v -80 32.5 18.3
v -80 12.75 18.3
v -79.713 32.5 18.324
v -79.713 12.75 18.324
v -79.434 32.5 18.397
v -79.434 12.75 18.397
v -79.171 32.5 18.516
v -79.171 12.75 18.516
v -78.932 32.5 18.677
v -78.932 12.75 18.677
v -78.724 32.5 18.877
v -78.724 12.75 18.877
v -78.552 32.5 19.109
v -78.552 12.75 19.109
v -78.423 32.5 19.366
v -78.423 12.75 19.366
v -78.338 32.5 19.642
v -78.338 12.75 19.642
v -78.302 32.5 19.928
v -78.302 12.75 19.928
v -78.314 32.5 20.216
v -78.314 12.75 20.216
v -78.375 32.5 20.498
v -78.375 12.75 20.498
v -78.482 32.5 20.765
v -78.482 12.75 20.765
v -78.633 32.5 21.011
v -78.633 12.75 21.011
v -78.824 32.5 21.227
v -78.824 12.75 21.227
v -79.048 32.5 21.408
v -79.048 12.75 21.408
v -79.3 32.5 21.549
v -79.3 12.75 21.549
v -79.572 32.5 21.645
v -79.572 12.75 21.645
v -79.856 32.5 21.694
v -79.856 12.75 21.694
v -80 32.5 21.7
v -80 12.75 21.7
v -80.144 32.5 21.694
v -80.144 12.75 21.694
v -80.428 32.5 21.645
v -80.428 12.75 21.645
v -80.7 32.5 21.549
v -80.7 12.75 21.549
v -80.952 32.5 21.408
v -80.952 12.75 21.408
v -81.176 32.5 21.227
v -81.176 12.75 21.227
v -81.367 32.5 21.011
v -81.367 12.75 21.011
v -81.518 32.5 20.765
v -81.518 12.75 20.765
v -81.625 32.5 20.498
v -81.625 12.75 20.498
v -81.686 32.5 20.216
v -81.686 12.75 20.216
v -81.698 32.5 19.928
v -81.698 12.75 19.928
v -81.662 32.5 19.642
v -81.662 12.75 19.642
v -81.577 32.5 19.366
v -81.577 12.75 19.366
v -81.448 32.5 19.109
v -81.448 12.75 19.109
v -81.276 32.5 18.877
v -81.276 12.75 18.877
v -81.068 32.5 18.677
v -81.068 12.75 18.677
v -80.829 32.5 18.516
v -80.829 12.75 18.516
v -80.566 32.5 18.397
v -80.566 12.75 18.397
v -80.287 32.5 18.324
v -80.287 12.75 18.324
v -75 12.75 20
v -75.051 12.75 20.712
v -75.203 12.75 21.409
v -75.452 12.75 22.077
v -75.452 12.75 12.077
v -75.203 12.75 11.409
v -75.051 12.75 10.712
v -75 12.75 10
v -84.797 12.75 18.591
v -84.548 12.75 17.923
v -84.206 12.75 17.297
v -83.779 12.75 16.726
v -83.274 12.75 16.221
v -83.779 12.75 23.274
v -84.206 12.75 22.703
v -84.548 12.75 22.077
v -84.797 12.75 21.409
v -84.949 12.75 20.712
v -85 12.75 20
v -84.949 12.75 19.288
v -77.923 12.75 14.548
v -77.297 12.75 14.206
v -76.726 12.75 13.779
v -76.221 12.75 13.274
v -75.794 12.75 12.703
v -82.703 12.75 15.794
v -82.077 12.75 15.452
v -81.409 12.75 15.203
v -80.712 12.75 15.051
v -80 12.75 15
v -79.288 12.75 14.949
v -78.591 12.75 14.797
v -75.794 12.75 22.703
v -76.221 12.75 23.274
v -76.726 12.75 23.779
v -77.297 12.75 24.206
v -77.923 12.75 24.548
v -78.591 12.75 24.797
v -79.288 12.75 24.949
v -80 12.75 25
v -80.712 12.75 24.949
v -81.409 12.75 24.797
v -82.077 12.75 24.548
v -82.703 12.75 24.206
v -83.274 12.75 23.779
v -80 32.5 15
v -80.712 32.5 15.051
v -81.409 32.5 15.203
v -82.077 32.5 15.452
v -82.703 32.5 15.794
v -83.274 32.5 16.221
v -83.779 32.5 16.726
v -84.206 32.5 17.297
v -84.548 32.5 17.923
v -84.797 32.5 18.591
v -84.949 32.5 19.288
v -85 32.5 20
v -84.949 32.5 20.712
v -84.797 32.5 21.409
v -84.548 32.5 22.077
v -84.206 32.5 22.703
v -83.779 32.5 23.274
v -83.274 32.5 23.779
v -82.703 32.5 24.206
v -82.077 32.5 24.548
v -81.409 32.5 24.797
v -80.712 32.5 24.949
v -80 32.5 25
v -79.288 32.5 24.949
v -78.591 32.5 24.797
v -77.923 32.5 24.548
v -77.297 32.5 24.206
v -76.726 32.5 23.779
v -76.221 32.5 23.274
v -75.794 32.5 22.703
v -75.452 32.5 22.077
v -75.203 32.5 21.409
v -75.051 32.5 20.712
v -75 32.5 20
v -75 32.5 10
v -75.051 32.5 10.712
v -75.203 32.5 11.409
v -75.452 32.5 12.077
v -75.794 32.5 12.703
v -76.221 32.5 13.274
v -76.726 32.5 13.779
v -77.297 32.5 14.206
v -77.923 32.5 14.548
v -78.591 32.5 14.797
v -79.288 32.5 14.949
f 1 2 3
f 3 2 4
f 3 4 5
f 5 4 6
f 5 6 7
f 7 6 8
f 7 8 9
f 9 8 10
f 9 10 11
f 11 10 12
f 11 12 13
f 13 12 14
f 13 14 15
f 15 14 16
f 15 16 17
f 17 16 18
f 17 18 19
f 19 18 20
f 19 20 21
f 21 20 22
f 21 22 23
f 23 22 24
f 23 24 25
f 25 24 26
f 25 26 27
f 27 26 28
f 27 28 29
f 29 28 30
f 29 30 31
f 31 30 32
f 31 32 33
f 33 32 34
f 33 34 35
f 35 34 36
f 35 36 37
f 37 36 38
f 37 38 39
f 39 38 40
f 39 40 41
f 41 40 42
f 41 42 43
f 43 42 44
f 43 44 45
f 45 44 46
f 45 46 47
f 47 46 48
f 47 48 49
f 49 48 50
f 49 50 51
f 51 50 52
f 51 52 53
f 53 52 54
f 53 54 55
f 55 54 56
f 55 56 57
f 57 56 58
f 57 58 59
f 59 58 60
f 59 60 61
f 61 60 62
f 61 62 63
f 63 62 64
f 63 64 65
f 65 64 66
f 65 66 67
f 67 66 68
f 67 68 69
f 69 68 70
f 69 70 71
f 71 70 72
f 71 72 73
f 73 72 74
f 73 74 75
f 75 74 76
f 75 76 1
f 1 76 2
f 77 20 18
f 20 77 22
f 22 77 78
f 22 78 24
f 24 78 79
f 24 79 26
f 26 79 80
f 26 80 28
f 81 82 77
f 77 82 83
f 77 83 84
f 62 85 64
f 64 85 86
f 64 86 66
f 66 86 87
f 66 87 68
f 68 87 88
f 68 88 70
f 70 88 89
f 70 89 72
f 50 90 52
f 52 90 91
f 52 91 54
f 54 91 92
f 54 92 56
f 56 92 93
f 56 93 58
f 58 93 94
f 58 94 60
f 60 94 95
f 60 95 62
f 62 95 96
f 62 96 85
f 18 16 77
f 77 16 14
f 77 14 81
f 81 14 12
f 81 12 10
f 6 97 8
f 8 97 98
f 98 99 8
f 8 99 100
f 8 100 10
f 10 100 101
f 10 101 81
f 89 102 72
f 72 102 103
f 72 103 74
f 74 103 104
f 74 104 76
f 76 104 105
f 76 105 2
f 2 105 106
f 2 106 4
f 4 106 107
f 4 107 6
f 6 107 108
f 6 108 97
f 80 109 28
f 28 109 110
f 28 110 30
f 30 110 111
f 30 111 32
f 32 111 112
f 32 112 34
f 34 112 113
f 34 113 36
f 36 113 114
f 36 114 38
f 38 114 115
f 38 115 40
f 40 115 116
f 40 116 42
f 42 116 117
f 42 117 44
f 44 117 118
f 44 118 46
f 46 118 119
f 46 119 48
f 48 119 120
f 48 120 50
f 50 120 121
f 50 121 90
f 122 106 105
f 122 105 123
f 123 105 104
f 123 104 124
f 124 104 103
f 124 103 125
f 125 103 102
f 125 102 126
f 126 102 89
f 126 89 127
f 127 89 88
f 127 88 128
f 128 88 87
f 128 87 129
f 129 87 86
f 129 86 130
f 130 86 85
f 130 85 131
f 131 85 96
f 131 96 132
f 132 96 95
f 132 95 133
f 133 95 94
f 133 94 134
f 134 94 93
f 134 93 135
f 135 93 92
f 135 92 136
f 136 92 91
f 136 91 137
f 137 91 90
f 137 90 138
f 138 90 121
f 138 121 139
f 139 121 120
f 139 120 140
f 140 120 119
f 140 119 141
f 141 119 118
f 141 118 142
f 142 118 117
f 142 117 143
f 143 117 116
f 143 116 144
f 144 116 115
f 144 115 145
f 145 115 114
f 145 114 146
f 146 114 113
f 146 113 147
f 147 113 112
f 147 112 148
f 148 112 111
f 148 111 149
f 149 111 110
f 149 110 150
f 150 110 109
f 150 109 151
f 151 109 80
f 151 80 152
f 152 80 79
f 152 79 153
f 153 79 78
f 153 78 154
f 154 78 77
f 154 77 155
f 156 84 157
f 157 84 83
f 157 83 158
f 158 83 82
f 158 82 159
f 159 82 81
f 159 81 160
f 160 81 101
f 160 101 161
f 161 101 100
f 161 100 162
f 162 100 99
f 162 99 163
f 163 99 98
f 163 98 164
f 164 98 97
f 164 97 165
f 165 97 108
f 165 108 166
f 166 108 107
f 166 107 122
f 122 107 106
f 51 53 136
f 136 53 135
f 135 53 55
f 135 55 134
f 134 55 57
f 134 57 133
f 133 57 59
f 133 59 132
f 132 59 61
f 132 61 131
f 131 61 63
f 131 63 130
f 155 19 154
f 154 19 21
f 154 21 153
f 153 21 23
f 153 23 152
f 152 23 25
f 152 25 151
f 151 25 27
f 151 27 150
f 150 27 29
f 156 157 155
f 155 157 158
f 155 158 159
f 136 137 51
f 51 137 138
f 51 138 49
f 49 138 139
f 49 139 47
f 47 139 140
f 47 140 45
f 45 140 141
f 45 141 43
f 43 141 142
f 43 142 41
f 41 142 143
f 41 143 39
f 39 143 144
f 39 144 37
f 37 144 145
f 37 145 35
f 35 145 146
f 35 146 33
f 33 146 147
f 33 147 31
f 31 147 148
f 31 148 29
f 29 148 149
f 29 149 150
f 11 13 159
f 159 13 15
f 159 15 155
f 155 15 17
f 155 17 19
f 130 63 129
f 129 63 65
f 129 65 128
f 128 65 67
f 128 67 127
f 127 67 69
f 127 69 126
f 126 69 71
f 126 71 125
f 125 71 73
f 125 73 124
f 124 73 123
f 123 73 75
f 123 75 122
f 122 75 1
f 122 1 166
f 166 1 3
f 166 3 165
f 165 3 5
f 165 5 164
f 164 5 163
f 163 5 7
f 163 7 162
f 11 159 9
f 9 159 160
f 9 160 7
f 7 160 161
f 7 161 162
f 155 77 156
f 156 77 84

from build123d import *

# Parameters (mm, degrees)
BOSS_EXTRUDE1_DEPTH      = 20
SHELL1_T                 = -10
SHELL1_THICKNESS_2_DEPTH = 6
SKETCH3_R                = 32.5
CUT_EXTRUDE5_DEPTH       = 119.84864324
CUT_EXTRUDE6_DEPTH       = 119.84864324
SKETCH5_R                = 17.5
CUT_EXTRUDE7_DEPTH       = 119.84864324
SKETCH6_R                = 1.7
BOSS_EXTRUDE2_DEPTH      = 50
SKETCH6_2_R              = 1.7
CUT_EXTRUDE8_DEPTH       = 35
SKETCH9_R                = 1.7
BOSS_EXTRUDE3_DEPTH      = 32.5
SKETCH9_2_R              = 1.7
CUT_EXTRUDE10_DEPTH      = 12.75
CUT_EXTRUDE9_DEPTH       = 2
FILLET1_R                = 5
FILLET2_R                = 0.5
SKETCH10_W               = 46.141745146
SKETCH10_H               = 188.45260123
CUT_EXTRUDE11_DEPTH      = 186.270073136


with BuildPart() as part:
    # Sketch1 → Boss-Extrude1 (new body)
    with BuildSketch(Plane.XY):
        with BuildLine():
            Line((55, -90), (-55, -90))
            ThreePointArc((-55, -90), (-69.142135624, -84.142135624), (-75, -70))
            Line((-75, -70), (-75, 70))
            ThreePointArc((-75, 70), (-69.142135624, 84.142135624), (-55, 90))
            Line((-55, 90), (55, 90))
            ThreePointArc((55, 90), (69.142135624, 84.142135624), (75, 70))
            Line((75, 70), (75, -70))
            ThreePointArc((75, -70), (69.142135624, -84.142135624), (55, -90))
        make_face()
    extrude(amount=BOSS_EXTRUDE1_DEPTH)

    # Shell1
    shell1_openings = [part.faces().sort_by_distance(p)[0] for p in [
        (0, 0, 20),
    ]]
    offset(amount=SHELL1_T, openings=shell1_openings, kind=Kind.INTERSECTION)

    # Shell1 thickness 2 face (on inner face of the shell) → Shell1 thickness 2 (cut)
    with BuildSketch(Plane(origin=(0, 0, 10), x_dir=(-1, 0, 0), z_dir=(0, 0, -1))):
        with BuildLine():
            ThreePointArc((-55, -80), (-62.071067812, -77.071067812), (-65, -70))
            Line((-65, -70), (-65, 70))
            ThreePointArc((-65, 70), (-62.071067812, 77.071067812), (-55, 80))
            Line((-55, 80), (55, 80))
            ThreePointArc((55, 80), (62.071067812, 77.071067812), (65, 70))
            Line((65, 70), (65, -70))
            ThreePointArc((65, -70), (62.071067812, -77.071067812), (55, -80))
            Line((55, -80), (-55, -80))
        make_face()
    extrude(amount=SHELL1_THICKNESS_2_DEPTH, mode=Mode.SUBTRACT)

    # Sketch3 → Cut-Extrude5 (cut, through all)
    with BuildSketch(Plane.XY):
        with Locations((0, -36.75)):
            Circle(SKETCH3_R)
    extrude(amount=CUT_EXTRUDE5_DEPTH, mode=Mode.SUBTRACT)

    # Sketch4 → Cut-Extrude6 (cut, through all)
    with BuildSketch(Plane.XY):
        with BuildLine():
            Line((-30.75, 13.25), (-9.25, 13.25))
            ThreePointArc((-9.25, 13.25), (-8.542893219, 13.542893219), (-8.25, 14.25))
            Line((-8.25, 14.25), (-8.25, 35.75))
            ThreePointArc((-8.25, 35.75), (-8.542893219, 36.457106781), (-9.25, 36.75))
            Line((-9.25, 36.75), (-30.75, 36.75))
            ThreePointArc((-30.75, 36.75), (-31.457106781, 36.457106781), (-31.75, 35.75))
            Line((-31.75, 35.75), (-31.75, 14.25))
            ThreePointArc((-31.75, 14.25), (-31.457106781, 13.542893219), (-30.75, 13.25))
        make_face()
    extrude(amount=CUT_EXTRUDE6_DEPTH, mode=Mode.SUBTRACT)

    # Sketch5 → Cut-Extrude7 (cut, through all)
    with BuildSketch(Plane.XY):
        with Locations((20, 25)):
            Circle(SKETCH5_R)
    extrude(amount=CUT_EXTRUDE7_DEPTH, mode=Mode.SUBTRACT)

    # Sketch6 → Boss-Extrude2 (add, symmetric)
    with BuildSketch(Plane(origin=(0, 0, 0), x_dir=(1, 0, 0), z_dir=(0, 1, 0))):
        with BuildLine():
            Line((75, -20), (75, -10))
            ThreePointArc((75, -10), (76.464466094, -13.535533906), (80, -15))
            ThreePointArc((80, -15), (83.535533906, -23.535533906), (75, -20))
        make_face()
        with Locations((80, -20)):
            Circle(SKETCH6_R, mode=Mode.SUBTRACT)
    extrude(amount=BOSS_EXTRUDE2_DEPTH, both=True)

    # Sketch6<2> → Cut-Extrude8 (cut, symmetric)
    with BuildSketch(Plane(origin=(0, 0, 0), x_dir=(1, 0, 0), z_dir=(0, 1, 0))):
        with BuildLine():
            Line((75, -20), (75, -10))
            ThreePointArc((75, -10), (76.464466094, -13.535533906), (80, -15))
            ThreePointArc((80, -15), (83.535533906, -23.535533906), (75, -20))
        make_face()
        with Locations((80, -20)):
            Circle(SKETCH6_2_R, mode=Mode.SUBTRACT)
    extrude(amount=CUT_EXTRUDE8_DEPTH, both=True, mode=Mode.SUBTRACT)

    # Sketch9 → Boss-Extrude3 (add, symmetric)
    with BuildSketch(Plane(origin=(0, 0, 0), x_dir=(1, 0, 0), z_dir=(0, 1, 0))):
        with BuildLine():
            Line((-75, -10), (-75, -20))
            ThreePointArc((-75, -20), (-83.535533906, -23.535533906), (-80, -15))
            ThreePointArc((-80, -15), (-76.464466094, -13.535533906), (-75, -10))
        make_face()
        with Locations((-80, -20)):
            Circle(SKETCH9_R, mode=Mode.SUBTRACT)
    extrude(amount=BOSS_EXTRUDE3_DEPTH, both=True)

    # Sketch9<2> → Cut-Extrude10 (cut, symmetric)
    with BuildSketch(Plane(origin=(0, 0, 0), x_dir=(1, 0, 0), z_dir=(0, 1, 0))):
        with BuildLine():
            Line((-75, -10), (-75, -20))
            ThreePointArc((-75, -20), (-83.535533906, -23.535533906), (-80, -15))
            ThreePointArc((-80, -15), (-76.464466094, -13.535533906), (-75, -10))
        make_face()
        with Locations((-80, -20)):
            Circle(SKETCH9_2_R, mode=Mode.SUBTRACT)
    extrude(amount=CUT_EXTRUDE10_DEPTH, both=True, mode=Mode.SUBTRACT)

    # Sketch7 → Cut-Extrude9 (cut)
    with BuildSketch(Plane.XY.offset(4)):
        with BuildLine():
            Line((-26, -0.75), (26, -0.75))
            ThreePointArc((26, -0.75), (33.071067812, -3.678932188), (36, -10.75))
            Line((36, -10.75), (36, -62.75))
            ThreePointArc((36, -62.75), (33.071067812, -69.821067812), (26, -72.75))
            Line((26, -72.75), (-26, -72.75))
            ThreePointArc((-26, -72.75), (-33.071067812, -69.821067812), (-36, -62.75))
            Line((-36, -62.75), (-36, -10.75))
            ThreePointArc((-36, -10.75), (-33.071067812, -3.678932188), (-26, -0.75))
        make_face()
        with BuildLine():
            Line((8, 47), (32, 47))
            ThreePointArc((32, 47), (39.071067812, 44.071067812), (42, 37))
            Line((42, 37), (42, 13))
            ThreePointArc((42, 13), (39.071067812, 5.928932188), (32, 3))
            Line((32, 3), (8, 3))
            ThreePointArc((8, 3), (0.928932188, 5.928932188), (-2, 13))
            Line((-2, 13), (-2, 37))
            ThreePointArc((-2, 37), (0.928932188, 44.071067812), (8, 47))
        make_face()
    extrude(amount=-CUT_EXTRUDE9_DEPTH, mode=Mode.SUBTRACT)

    # Fillet1
    fillet1_edges = [part.edges().sort_by_distance(p)[0] for p in [
        (75, 0, 0),
        (69.142135624, -84.142135624, 0),
        (0, -90, 0),
        (-69.142135624, -84.142135624, 0),
        (-75, 0, 0),
        (-69.142135624, 84.142135624, 0),
        (0, 90, 0),
        (69.142135624, 84.142135624, 0),
        (0, 80, 4),
        (62.071067812, 77.071067812, 4),
        (65, 0, 4),
        (62.071067812, -77.071067812, 4),
        (0, -80, 4),
        (-62.071067812, -77.071067812, 4),
        (-65, 0, 4),
        (-62.071067812, 77.071067812, 4),
    ]]
    fillet(fillet1_edges, radius=FILLET1_R)

    # Fillet2
    fillet2_edges = [part.edges().sort_by_distance(p)[0] for p in [
        (-8.542893219, 13.542893219, 0),
        (-20, 13.25, 0),
        (-31.457106781, 13.542893219, 0),
        (-31.75, 25, 0),
        (-31.457106781, 36.457106781, 0),
        (-20, 36.75, 0),
        (-8.542893219, 36.457106781, 0),
        (75, 60, 20),
        (69.142135624, 84.142135624, 20),
        (0, 90, 20),
        (-69.142135624, 84.142135624, 20),
        (75, -60, 20),
        (69.142135624, -84.142135624, 20),
        (0, -90, 20),
        (-69.142135624, -84.142135624, 20),
        (-62.071067812, 77.071067812, 20),
        (0, 80, 20),
        (62.071067812, 77.071067812, 20),
        (65, 0, 20),
        (62.071067812, -77.071067812, 20),
        (0, -80, 20),
        (-62.071067812, -77.071067812, 20),
        (-8.25, 25, 0),
        (2.5, 25, 0),
        (75, 0, 20),
        (-75, 51.25, 20),
        (-75, -51.25, 20),
        (-75, 0, 20),
        (-65, 0, 20),
        (-32.5, -36.75, 0),
        (0.928932188, 44.071067812, 4),
        (20, 47, 4),
        (39.071067812, 44.071067812, 4),
        (42, 25, 4),
        (39.071067812, 5.928932188, 4),
        (20, 3, 4),
        (0.928932188, 5.928932188, 4),
        (33.071067812, -3.678932188, 4),
        (36, -36.75, 4),
        (33.071067812, -69.821067812, 4),
        (0, -72.75, 4),
        (-33.071067812, -69.821067812, 4),
        (-36, -36.75, 4),
        (-33.071067812, -3.678932188, 4),
        (-2, 25, 4),
        (0, -0.75, 4),
    ]]
    fillet(fillet2_edges, radius=FILLET2_R)

    # Sketch10 → Cut-Extrude11 (cut, through all)
    with BuildSketch(Plane.ZY.offset(75)):
        with Locations((9.585784517, 0.121425645)):
            Rectangle(SKETCH10_W, SKETCH10_H)
    extrude(amount=-CUT_EXTRUDE11_DEPTH, mode=Mode.SUBTRACT)


with BuildPart() as body_2:
    # of the pieces the cut leaves, the one that is kept (cut_extrude11_keep)
    add(part.part.solids().sort_by_distance((-75, 12.75, 20))[0])


solid = body_2.part
